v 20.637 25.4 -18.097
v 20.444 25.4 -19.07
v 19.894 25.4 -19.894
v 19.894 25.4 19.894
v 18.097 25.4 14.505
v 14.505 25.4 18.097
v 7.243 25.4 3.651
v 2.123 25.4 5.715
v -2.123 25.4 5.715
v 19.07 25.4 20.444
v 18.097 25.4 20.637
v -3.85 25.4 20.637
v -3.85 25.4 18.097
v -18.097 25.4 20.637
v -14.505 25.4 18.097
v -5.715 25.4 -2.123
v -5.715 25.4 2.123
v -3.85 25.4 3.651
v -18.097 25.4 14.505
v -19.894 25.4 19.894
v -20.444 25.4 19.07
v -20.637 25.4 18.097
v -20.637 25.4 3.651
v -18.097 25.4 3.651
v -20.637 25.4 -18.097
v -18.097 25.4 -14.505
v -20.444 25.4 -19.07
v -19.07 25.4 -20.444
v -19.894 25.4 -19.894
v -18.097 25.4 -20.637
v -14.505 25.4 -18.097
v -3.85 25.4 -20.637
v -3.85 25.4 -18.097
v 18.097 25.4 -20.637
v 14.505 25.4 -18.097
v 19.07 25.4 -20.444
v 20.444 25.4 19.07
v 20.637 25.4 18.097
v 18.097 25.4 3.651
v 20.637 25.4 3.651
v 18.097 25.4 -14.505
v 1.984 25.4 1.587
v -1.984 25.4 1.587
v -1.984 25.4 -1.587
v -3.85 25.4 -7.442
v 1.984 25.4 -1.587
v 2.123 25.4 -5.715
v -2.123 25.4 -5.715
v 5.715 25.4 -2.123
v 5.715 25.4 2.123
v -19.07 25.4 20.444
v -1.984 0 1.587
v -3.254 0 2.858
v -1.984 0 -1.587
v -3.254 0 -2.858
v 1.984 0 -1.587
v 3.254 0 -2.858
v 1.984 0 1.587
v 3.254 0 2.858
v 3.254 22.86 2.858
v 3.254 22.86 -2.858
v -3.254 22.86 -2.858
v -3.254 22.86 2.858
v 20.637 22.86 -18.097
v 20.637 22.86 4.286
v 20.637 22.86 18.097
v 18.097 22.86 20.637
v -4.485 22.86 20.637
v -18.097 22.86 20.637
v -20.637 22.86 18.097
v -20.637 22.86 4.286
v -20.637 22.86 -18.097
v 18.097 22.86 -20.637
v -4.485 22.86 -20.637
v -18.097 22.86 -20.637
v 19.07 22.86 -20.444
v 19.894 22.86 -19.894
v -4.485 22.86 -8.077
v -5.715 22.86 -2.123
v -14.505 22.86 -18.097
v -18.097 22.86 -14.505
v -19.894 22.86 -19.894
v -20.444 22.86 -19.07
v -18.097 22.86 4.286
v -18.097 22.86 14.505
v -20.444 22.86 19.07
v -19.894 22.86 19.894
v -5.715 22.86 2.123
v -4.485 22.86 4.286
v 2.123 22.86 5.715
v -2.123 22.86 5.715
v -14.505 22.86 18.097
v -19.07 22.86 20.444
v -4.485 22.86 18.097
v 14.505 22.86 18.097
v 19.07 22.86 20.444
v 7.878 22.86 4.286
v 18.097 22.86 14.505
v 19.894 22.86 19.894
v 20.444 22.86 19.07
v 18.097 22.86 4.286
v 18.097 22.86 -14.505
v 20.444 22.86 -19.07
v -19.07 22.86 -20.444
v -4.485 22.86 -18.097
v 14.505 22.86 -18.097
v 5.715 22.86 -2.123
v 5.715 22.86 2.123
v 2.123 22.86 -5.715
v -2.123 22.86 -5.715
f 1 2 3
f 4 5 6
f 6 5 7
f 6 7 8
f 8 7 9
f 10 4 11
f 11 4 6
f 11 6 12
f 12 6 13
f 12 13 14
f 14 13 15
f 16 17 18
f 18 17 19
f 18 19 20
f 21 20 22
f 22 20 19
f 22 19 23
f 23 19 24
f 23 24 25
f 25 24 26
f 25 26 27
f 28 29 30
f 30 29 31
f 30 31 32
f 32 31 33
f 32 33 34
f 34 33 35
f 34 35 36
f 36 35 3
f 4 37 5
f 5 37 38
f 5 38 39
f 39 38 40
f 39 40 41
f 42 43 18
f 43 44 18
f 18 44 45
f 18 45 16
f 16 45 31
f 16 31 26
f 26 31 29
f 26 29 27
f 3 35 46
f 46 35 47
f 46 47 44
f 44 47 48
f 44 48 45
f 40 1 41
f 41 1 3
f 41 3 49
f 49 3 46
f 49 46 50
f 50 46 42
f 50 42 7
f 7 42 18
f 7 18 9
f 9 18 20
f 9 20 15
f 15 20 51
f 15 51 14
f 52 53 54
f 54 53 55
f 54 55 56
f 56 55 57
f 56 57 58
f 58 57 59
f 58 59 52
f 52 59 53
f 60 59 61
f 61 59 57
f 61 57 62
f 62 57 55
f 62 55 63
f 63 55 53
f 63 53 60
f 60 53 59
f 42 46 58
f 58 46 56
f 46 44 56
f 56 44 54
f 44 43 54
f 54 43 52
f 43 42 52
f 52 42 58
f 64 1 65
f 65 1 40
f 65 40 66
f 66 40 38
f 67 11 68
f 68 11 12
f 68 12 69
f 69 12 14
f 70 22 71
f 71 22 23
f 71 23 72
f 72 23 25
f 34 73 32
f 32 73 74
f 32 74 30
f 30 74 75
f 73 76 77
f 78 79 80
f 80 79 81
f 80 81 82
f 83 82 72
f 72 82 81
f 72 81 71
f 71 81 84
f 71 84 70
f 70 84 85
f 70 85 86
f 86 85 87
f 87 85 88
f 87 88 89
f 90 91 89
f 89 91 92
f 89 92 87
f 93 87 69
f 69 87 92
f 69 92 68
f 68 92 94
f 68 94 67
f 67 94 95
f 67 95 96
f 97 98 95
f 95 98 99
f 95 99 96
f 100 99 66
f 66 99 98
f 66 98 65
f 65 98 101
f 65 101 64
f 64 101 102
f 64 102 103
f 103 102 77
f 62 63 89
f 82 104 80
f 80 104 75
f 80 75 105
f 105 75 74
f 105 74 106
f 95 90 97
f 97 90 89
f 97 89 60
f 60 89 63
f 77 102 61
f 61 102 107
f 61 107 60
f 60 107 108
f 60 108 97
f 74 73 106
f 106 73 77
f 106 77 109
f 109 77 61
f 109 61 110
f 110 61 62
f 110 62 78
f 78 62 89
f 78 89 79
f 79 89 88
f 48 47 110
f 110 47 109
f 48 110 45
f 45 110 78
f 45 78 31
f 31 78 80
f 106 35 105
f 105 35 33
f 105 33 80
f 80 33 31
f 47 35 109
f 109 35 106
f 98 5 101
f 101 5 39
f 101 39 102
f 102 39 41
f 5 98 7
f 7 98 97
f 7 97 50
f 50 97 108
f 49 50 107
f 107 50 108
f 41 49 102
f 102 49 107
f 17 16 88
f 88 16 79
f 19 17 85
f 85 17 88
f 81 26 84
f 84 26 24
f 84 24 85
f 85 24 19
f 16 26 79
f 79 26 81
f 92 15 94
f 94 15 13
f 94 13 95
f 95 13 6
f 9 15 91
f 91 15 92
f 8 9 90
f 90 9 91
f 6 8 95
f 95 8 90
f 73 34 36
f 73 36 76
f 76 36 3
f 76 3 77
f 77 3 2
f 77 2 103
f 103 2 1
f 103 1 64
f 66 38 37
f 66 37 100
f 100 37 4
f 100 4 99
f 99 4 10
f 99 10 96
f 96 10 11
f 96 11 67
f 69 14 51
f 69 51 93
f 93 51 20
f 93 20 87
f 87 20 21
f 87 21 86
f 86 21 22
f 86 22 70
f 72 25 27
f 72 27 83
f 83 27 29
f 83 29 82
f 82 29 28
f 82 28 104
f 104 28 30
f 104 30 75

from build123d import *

# Parameters (mm, degrees)
SKETCH1_W           = 6.50875
SKETCH1_H           = 5.715
SKETCH1_W_2         = 3.96875
SKETCH1_H_2         = 3.175
BOSS_EXTRUDE1_DEPTH = 25.4
SKETCH2_W           = 41.275
SKETCH2_H           = 41.275
SKETCH2_W_2         = 6.50875
SKETCH2_H_2         = 5.715
BOSS_EXTRUDE2_DEPTH = 2.54
CUT_EXTRUDE1_DEPTH  = 39.690732902
FILLET1_R           = 2.54


with BuildPart() as part:
    # Sketch1 → Boss-Extrude1 (new body)
    with BuildSketch(Plane(origin=(0, 0, 0), x_dir=(1, 0, 0), z_dir=(0, 1, 0))):
        Rectangle(SKETCH1_W, SKETCH1_H)
        Rectangle(SKETCH1_W_2, SKETCH1_H_2, mode=Mode.SUBTRACT)
    extrude(amount=BOSS_EXTRUDE1_DEPTH)

    # Sketch2 → Boss-Extrude2 (add)
    with BuildSketch(Plane(origin=(0, 25.4, 0), x_dir=(1, 0, 0), z_dir=(0, 1, 0))):
        Rectangle(SKETCH2_W, SKETCH2_H)
        Rectangle(SKETCH2_W_2, SKETCH2_H_2, mode=Mode.SUBTRACT)
    extrude(amount=-BOSS_EXTRUDE2_DEPTH)

    # Sketch3 → Cut-Extrude1 (cut, through all)
    with BuildSketch(Plane(origin=(0, 25.4, 0), x_dir=(1, 0, 0), z_dir=(0, 1, 0))):
        Polygon((-2.122897552, 5.715), (-14.505397552, 18.0975), (14.505397552, 18.0975), (2.122897552, 5.715), align=None)
        Polygon((-5.715, 2.122897552), (-18.0975, 14.505397552), (-18.0975, -14.505397552), (-5.715, -2.122897552), align=None)
        Polygon((-14.505397552, -18.0975), (-2.122897552, -5.715), (2.122897552, -5.715), (14.505397552, -18.0975), align=None)
        Polygon((18.0975, 14.505397552), (5.715, 2.122897552), (5.715, -2.122897552), (18.0975, -14.505397552), align=None)
    extrude(amount=-CUT_EXTRUDE1_DEPTH, mode=Mode.SUBTRACT)

    # Fillet1
    fillet1_edges = [part.edges().sort_by_distance(p)[0] for p in [
        (20.6375, 24.13, -20.6375),
        (20.6375, 24.13, 20.6375),
        (-20.6375, 24.13, 20.6375),
        (-20.6375, 24.13, -20.6375),
    ]]
    fillet(fillet1_edges, radius=FILLET1_R)


solid = part.part
